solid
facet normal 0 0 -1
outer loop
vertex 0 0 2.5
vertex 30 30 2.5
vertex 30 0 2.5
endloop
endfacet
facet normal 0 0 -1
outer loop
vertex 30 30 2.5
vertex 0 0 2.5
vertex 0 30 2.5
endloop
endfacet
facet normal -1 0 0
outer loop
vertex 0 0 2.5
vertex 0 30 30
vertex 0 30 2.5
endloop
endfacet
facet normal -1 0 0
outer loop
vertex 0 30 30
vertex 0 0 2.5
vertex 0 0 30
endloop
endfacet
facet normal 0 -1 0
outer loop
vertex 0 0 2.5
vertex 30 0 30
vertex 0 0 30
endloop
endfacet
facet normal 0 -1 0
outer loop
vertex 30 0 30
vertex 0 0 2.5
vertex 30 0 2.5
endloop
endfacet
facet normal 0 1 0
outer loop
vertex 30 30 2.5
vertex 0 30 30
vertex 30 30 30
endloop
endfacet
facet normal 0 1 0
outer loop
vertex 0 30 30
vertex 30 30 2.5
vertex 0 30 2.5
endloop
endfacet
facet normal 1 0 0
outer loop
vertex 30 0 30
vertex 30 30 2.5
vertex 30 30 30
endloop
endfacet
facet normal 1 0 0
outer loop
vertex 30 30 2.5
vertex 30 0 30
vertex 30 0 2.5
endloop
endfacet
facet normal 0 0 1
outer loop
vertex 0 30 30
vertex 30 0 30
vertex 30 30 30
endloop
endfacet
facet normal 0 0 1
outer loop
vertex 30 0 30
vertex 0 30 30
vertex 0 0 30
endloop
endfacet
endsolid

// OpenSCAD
// Dice in OpenSCAD

module dice(size, segments) {
  difference() {
    cube([size, size, size]);
    for (i = [0:segments-1]) {
      for (j = [0:segments-1]) {
        translate([i * (size / segments), j * (size / segments), 0])
          cube([size/segments, size/segments, size/segments]);
      }
    }
  }
}

dice(30, 12);
